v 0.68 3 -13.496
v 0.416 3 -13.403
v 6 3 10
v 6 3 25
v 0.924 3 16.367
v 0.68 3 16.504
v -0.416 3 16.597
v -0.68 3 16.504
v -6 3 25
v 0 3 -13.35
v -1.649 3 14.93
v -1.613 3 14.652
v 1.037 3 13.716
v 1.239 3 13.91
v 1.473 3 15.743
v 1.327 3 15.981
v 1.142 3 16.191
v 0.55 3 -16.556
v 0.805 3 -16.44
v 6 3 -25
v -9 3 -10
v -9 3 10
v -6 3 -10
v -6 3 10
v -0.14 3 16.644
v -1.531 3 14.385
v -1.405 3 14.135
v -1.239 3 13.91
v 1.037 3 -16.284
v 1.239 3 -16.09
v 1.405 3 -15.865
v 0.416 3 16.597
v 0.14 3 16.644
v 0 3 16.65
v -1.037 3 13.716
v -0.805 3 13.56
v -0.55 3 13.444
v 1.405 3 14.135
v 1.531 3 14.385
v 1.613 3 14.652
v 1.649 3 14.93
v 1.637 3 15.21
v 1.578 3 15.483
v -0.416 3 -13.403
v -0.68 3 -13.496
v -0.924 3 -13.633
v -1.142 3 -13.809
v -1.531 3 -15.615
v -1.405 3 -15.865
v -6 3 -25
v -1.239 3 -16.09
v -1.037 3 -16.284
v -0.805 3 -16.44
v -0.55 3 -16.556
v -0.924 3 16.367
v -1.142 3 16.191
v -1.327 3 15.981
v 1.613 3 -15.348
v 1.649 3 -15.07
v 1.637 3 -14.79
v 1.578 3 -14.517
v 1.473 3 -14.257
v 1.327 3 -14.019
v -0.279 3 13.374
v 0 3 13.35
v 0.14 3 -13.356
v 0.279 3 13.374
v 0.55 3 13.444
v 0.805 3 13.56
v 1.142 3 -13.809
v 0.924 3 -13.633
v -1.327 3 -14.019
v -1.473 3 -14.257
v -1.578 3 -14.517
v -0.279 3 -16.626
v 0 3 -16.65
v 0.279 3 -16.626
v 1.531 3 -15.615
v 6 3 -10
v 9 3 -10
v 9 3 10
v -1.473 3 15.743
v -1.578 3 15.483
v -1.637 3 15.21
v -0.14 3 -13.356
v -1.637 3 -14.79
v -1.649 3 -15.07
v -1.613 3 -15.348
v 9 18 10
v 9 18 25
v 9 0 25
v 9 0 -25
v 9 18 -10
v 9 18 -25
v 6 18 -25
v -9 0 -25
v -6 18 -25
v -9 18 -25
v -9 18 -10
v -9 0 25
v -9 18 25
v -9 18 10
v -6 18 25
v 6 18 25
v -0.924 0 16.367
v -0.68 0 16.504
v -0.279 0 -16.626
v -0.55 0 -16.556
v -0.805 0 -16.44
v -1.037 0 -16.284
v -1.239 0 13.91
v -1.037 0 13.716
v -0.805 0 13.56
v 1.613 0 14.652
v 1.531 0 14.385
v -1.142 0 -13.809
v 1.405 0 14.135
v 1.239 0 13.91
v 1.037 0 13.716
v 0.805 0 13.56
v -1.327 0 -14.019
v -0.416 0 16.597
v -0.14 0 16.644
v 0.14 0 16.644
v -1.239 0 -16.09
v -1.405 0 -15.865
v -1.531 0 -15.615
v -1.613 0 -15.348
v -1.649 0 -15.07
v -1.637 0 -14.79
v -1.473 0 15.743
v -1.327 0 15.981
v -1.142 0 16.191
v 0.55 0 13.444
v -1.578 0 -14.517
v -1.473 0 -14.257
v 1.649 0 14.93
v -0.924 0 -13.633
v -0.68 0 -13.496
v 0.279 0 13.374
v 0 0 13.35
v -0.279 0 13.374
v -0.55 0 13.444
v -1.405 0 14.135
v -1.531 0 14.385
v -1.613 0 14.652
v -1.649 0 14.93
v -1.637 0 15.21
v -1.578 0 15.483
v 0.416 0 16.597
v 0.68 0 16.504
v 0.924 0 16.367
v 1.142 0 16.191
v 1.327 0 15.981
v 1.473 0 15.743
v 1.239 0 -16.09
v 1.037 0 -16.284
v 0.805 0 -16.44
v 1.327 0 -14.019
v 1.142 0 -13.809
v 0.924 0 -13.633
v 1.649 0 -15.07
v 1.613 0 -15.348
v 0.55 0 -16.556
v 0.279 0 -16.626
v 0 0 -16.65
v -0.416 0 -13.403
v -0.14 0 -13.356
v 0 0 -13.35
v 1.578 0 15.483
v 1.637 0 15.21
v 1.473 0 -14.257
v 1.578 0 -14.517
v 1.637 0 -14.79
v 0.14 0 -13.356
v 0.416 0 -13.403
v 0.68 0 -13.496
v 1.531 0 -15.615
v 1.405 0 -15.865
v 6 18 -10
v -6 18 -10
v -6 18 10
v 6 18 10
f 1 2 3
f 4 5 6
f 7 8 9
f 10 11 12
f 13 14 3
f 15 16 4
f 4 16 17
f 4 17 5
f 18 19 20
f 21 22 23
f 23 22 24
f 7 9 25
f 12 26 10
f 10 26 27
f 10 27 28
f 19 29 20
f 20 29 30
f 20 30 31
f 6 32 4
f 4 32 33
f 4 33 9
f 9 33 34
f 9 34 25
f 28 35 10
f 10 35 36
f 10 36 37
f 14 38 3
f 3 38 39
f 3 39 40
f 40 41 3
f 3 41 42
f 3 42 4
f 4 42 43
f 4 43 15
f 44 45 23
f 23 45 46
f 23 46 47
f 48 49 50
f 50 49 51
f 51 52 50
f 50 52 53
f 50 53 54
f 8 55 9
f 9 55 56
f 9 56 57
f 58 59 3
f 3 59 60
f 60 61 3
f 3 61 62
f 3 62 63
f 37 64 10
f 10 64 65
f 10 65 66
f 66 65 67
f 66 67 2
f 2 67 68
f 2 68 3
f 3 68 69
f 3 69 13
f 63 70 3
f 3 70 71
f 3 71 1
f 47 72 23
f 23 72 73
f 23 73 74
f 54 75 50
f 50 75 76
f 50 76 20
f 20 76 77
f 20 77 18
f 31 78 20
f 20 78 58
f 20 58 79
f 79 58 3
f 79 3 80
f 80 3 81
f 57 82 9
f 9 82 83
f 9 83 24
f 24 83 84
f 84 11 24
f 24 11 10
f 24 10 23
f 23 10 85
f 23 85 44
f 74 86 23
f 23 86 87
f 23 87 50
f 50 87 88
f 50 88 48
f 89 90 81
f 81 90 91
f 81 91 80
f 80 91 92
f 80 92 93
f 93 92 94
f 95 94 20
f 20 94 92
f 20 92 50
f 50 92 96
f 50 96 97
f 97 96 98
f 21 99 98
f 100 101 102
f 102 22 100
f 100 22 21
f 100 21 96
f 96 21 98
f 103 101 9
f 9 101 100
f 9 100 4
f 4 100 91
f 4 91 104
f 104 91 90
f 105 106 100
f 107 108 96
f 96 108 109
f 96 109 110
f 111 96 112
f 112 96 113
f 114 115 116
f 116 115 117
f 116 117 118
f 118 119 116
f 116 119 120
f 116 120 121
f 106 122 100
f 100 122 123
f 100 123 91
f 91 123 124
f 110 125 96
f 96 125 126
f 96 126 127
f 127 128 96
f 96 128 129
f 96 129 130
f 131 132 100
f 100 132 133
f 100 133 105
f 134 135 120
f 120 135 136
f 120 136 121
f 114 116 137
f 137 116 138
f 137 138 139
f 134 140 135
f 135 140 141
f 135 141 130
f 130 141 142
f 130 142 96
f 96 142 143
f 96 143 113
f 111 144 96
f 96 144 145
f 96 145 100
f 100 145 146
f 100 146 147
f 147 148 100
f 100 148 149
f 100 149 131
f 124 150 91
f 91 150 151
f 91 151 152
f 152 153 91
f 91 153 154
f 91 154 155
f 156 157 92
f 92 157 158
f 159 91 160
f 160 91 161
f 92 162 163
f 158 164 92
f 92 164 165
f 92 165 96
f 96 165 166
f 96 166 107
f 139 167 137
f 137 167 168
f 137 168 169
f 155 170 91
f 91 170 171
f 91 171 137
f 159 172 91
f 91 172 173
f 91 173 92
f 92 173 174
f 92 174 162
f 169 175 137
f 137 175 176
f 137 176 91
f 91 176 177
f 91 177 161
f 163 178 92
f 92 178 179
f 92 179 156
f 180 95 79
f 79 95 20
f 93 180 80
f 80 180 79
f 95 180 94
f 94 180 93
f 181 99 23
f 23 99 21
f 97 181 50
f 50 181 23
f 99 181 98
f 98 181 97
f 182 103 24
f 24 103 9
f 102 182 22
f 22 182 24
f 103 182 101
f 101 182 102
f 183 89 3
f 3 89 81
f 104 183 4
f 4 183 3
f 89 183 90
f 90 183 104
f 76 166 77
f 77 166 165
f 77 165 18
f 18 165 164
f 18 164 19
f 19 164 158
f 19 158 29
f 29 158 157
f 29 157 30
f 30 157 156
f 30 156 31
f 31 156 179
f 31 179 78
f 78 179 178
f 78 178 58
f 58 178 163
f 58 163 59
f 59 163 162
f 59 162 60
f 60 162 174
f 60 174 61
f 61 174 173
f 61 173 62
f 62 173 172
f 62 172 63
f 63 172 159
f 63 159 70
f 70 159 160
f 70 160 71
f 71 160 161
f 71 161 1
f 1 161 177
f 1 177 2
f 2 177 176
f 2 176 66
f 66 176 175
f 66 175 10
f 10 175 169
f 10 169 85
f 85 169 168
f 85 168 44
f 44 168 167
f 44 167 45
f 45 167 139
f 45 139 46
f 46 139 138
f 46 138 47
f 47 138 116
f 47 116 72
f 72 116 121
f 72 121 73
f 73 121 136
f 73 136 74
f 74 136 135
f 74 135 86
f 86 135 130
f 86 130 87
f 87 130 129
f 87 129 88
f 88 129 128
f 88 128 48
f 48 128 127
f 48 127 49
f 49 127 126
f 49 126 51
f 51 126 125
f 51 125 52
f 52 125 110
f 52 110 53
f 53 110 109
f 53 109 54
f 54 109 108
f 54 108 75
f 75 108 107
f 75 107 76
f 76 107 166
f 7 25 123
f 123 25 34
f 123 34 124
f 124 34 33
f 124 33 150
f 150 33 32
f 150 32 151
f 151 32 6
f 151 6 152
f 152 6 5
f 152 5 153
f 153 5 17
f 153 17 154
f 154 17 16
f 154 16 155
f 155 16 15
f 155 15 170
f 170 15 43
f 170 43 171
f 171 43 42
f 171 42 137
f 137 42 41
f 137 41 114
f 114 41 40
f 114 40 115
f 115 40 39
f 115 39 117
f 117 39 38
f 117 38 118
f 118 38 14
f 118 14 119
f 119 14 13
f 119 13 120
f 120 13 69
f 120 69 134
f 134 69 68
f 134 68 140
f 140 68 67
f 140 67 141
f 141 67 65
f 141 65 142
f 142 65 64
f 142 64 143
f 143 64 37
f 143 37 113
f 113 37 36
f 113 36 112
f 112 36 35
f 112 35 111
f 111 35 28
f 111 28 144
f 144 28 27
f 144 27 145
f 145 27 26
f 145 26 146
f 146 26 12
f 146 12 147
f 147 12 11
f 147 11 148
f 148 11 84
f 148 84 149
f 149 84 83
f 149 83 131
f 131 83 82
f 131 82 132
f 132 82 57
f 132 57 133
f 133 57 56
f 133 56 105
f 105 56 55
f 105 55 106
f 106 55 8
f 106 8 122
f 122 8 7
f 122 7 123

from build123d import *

# Parameters (mm, degrees)
SKETCH1_W           = 18
SKETCH1_H           = 50
BOSS_EXTRUDE1_DEPTH = 3
SKETCH2_W           = 3
SKETCH2_H           = 15
BOSS_EXTRUDE2_DEPTH = 15
SKETCH3_R           = 1.65
CUT_EXTRUDE1_DEPTH  = 3


with BuildPart() as part:
    # Sketch1 → Boss-Extrude1 (new body)
    with BuildSketch(Plane(origin=(0, 0, 0), x_dir=(1, 0, 0), z_dir=(0, 1, 0))):
        Rectangle(SKETCH1_W, SKETCH1_H)
    extrude(amount=BOSS_EXTRUDE1_DEPTH)

    # Sketch2 → Boss-Extrude2 (add)
    with BuildSketch(Plane(origin=(0, 3, 0), x_dir=(1, 0, 0), z_dir=(0, 1, 0))):
        with Locations((7.5, 17.5)):
            Rectangle(SKETCH2_W, SKETCH2_H)
        with Locations((-7.5, 17.5)):
            Rectangle(SKETCH2_W, SKETCH2_H)
        with Locations((-7.5, -17.5)):
            Rectangle(SKETCH2_W, SKETCH2_H)
        with Locations((7.5, -17.5)):
            Rectangle(SKETCH2_W, SKETCH2_H)
    extrude(amount=BOSS_EXTRUDE2_DEPTH)

    # Sketch3 → Cut-Extrude1 (cut)
    with BuildSketch(Plane.XZ):
        with Locations(Location((0, 15, 0), (0, 0, 270))):
            Circle(SKETCH3_R)
        with Locations(Location((0, -15, 0), (0, 0, 90))):
            Circle(SKETCH3_R)
    extrude(amount=-CUT_EXTRUDE1_DEPTH, mode=Mode.SUBTRACT)


solid = part.part
